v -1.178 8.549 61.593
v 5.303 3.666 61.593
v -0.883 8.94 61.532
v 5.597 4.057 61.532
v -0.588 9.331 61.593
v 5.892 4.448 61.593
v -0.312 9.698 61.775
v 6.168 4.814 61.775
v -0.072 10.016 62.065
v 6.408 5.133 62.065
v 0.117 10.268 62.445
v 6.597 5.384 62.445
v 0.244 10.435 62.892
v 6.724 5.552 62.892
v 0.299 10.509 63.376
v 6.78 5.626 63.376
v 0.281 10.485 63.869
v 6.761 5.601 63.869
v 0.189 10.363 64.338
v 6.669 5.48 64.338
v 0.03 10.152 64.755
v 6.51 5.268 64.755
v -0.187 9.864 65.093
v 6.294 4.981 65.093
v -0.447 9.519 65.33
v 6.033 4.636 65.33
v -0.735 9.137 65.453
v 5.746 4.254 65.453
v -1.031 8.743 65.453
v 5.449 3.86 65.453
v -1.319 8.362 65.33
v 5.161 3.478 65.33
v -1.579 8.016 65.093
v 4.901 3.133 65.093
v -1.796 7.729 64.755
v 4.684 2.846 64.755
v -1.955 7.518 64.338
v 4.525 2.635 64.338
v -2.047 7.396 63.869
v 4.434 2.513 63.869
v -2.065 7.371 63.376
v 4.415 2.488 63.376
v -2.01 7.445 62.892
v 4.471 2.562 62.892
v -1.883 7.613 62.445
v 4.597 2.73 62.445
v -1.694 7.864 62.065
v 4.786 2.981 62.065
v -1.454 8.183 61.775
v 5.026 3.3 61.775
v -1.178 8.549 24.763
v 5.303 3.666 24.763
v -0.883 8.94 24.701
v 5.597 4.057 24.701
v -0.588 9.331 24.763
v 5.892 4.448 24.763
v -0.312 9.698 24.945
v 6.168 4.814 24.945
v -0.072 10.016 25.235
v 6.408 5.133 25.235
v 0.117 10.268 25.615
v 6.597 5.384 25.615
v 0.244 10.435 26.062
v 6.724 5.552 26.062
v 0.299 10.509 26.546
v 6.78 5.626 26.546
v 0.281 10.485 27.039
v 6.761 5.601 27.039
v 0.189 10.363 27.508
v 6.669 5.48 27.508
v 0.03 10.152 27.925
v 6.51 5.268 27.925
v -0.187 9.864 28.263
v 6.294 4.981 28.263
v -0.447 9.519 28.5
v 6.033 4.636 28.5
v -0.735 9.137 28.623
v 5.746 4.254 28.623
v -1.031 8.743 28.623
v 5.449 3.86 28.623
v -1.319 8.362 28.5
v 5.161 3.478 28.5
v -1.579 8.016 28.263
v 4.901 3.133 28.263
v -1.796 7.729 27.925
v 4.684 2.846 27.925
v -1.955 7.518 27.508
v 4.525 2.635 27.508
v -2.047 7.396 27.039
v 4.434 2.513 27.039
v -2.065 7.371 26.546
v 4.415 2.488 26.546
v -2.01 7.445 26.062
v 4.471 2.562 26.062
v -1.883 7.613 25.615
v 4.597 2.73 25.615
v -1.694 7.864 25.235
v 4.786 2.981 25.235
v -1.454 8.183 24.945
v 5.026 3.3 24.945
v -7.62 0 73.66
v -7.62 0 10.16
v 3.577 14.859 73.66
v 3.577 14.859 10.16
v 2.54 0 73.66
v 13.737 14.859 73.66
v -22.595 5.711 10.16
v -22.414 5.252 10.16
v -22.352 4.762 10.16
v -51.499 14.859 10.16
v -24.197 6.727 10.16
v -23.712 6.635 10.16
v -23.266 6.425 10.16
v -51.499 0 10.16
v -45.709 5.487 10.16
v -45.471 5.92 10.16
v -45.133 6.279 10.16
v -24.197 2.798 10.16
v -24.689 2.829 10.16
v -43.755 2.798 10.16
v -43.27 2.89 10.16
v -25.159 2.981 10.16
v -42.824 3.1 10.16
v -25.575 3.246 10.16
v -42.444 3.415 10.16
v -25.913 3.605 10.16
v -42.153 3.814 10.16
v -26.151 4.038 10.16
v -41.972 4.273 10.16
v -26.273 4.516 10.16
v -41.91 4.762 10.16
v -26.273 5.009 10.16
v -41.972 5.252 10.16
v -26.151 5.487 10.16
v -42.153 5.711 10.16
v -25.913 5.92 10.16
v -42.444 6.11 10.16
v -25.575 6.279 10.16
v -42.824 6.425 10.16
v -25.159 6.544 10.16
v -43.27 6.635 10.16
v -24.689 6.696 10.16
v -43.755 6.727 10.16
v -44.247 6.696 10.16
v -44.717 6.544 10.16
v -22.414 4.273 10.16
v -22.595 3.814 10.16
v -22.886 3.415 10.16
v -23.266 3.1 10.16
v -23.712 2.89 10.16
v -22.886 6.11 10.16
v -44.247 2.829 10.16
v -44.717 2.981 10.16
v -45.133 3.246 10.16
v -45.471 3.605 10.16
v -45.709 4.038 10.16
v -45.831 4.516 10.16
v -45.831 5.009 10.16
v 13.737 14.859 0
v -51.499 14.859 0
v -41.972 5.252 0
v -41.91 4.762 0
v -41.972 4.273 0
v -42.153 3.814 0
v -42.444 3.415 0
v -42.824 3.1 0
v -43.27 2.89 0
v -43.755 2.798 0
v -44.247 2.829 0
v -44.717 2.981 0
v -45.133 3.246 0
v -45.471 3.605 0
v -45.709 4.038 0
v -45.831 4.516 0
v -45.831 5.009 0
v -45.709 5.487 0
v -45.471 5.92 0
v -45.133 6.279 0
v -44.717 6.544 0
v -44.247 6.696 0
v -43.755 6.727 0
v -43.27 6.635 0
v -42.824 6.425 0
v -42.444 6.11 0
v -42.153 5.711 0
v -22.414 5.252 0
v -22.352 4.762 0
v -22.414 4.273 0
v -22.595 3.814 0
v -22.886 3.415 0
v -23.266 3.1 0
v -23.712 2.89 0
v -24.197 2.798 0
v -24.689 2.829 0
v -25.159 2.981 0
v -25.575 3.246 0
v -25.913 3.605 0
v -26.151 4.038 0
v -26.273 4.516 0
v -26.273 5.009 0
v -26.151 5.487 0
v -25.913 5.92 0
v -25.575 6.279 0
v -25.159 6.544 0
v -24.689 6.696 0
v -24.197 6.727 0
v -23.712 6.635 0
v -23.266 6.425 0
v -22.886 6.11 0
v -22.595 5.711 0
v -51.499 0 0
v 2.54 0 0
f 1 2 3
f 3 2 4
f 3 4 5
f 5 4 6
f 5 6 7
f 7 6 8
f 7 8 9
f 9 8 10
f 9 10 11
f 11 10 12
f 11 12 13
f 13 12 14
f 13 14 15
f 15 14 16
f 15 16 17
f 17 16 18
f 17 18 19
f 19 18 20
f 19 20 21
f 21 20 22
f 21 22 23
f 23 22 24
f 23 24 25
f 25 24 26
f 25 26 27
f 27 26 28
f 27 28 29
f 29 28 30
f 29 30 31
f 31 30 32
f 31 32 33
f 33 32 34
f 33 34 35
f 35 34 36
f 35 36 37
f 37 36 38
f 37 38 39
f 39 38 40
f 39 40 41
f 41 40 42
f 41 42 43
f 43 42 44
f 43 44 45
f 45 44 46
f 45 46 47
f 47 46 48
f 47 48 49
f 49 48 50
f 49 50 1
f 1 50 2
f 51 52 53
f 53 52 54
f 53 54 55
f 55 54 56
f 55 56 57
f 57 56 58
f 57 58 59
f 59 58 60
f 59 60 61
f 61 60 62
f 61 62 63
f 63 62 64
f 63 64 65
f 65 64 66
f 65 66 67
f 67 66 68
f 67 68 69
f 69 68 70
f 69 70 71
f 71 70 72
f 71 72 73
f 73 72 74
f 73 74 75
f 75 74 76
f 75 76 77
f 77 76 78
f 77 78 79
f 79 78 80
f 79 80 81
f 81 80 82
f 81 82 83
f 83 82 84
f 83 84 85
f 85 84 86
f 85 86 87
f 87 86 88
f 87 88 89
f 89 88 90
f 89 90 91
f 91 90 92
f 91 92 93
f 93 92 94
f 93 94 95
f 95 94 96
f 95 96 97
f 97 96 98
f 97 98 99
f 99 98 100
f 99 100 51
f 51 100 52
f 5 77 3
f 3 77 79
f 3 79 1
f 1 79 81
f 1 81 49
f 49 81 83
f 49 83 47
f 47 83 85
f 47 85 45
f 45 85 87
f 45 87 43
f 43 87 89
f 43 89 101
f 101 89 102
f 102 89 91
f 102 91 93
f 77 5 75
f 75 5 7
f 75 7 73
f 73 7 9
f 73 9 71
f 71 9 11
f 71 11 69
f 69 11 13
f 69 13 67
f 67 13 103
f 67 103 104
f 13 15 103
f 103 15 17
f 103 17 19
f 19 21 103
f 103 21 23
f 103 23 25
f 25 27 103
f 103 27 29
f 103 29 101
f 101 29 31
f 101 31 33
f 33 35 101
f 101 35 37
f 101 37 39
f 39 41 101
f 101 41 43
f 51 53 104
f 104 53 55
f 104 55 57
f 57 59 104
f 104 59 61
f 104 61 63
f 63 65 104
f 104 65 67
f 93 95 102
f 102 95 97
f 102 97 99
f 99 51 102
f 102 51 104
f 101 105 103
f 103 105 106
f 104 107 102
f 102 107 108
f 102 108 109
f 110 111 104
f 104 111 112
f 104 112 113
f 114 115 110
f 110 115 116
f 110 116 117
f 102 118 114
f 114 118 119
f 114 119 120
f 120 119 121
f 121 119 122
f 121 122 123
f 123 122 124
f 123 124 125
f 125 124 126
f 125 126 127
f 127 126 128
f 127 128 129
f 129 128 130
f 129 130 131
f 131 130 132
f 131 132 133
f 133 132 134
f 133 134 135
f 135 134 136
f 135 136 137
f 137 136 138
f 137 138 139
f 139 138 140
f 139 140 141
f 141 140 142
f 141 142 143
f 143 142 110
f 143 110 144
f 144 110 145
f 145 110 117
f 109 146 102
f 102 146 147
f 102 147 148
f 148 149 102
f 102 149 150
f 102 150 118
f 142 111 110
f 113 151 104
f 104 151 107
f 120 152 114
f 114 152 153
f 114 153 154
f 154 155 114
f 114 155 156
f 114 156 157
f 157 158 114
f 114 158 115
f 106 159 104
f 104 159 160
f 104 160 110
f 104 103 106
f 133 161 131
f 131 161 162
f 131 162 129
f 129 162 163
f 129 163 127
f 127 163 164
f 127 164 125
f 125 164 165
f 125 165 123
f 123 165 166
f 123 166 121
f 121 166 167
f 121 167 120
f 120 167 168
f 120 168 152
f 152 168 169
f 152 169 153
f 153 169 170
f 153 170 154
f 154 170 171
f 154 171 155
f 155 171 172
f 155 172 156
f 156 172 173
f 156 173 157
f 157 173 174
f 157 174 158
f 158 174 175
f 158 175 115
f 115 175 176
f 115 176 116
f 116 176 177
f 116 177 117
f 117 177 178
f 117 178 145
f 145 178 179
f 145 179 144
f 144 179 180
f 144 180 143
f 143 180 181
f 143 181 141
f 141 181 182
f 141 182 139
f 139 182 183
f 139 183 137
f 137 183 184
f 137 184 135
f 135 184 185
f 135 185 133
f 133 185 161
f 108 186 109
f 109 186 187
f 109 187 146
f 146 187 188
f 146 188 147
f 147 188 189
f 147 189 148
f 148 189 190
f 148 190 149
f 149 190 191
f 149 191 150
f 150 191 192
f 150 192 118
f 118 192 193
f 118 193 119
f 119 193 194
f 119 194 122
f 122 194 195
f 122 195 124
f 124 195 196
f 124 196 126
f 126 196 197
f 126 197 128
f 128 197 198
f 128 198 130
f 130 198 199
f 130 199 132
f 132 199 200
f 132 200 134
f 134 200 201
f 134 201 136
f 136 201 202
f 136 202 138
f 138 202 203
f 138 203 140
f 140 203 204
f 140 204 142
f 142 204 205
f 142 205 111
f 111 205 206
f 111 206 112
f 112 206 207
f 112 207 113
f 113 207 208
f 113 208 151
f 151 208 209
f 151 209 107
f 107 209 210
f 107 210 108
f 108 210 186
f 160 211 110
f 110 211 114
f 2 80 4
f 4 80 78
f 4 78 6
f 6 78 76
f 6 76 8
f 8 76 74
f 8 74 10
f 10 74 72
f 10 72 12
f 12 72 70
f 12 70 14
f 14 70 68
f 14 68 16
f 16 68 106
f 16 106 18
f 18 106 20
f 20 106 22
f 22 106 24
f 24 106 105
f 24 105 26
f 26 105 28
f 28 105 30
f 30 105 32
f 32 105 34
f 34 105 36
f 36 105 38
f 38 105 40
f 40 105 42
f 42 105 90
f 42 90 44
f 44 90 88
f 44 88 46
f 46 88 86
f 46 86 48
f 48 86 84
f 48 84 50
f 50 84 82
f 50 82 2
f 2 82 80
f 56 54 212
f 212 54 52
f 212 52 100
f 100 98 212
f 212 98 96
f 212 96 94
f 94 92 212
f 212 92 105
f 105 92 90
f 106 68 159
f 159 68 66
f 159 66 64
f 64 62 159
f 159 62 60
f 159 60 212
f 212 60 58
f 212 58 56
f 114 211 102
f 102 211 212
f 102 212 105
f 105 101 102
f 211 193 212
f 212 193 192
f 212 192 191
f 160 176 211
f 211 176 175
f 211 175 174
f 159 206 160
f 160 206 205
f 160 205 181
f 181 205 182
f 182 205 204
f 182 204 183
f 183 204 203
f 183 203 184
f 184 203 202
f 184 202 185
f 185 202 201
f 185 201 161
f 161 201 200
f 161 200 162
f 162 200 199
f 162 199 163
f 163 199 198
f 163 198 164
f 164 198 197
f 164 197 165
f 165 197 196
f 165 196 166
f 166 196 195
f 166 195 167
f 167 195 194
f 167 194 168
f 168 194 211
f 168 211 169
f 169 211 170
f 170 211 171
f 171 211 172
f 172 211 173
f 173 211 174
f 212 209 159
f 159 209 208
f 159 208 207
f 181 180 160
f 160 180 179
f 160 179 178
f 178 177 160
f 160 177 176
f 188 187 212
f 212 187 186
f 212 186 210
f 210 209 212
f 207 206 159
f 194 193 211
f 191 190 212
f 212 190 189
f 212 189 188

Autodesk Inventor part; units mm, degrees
ref_plane "YZ Plane" through (0, 0, 0) normal (1, 0, 0) x (0, 1, 0)
ref_plane "XZ Plane" through (0, 0, 0) normal (0, 1, 0) x (-1, 0, 0)
ref_plane "Work Plane1" through (0, 0, 0) normal (0, 0, 1) x (1, 0, 0)
sketch "Sketch1" plane through (0, 0, 0) normal (0, 0, 1) x (1, 0, 0)
  line L0 (0, 14.859) -> (-322.453, 14.859) construction
  line L1 (-0.635, 0) -> (-321.818, 0) construction
  line L2 (0, 14.859) -> (0, 0.635) construction
  line L3 (2.54, 14.859) -> (2.54, 0) construction
  line L4 (2.54, 14.859) -> (17.399, 14.859) construction
  line L5 (2.54, 0) -> (-51.4985, 0)
  line L6 (13.7371, 14.859) -> (-30.6705, 14.859) construction
  circle A0 centre (-4.7625, 4.7625) radius 1.778 construction
  line L7 (-7.62, 0) -> (-7.62, 14.859) construction
  circle A1 centre (-24.3205, 4.7625) radius 1.778 construction
  circle A2 centre (-43.8785, 4.7625) radius 1.778 construction
  circle A3 centre (-24.3205, 4.7625) radius 1.9685
  circle A4 centre (-43.8785, 4.7625) radius 1.9685
  line L8 (-51.4985, 0) -> (-51.4985, 14.859)
  circle A5 centre (-24.3205, 4.7625) radius 4.8768 construction
  circle A6 centre (-43.8785, 4.7625) radius 4.8768 construction
  line L9 (13.7371, 14.859) -> (-51.4985, 14.859)
  line L10 (2.54, 0) -> (13.7371, 14.859)
  line L11 (2.54, 0) -> (21.1455, 0) construction
  point P0 (0, 0)
  dimension "d1" = 2.54
  dimension "d7" = 10.16
  dimension "d9" = 3.937
  dimension "d10" = 3.937
  dimension "d11" = 7.62
  dimension "d12" = 9.7536
  dimension "d13" = 9.7536
  dimension "d46" = 53
extrude "Extrusion1" add sketch "Sketch1" along normal blind 10.16
sketch "Sketch2" plane through (0, 0, 10.16) normal (0, 0, 1) x (1, 0, 0)
  circle A0 centre (-24.3205, 4.7625) radius 1.9685 construction
  circle A1 centre (-43.8785, 4.7625) radius 1.9685 construction
  line L0 (13.7371, 14.859) -> (-51.4985, 14.859) projected
  line L1 (2.54, 0) -> (-7.62, 0)
  line L2 (3.5771, 14.859) -> (13.7371, 14.859)
  line L3 (2.54, 0) -> (13.7371, 14.859)
  line L4 (2.54, 0) -> (24.4372, 0) construction
  line L5 (-7.62, 0) -> (3.5771, 14.859)
  line L6 (-7.62, 0) -> (10.9855, 0) construction
  point P0 (0, 0)
  point P1 (2.54, 14.859)
  dimension "d35" = 53
  dimension "d45" = 53
extrude "Extrusion2" add sketch "Sketch2" along normal blind 63.5 and the other way blind 10.16
sketch "Sketch4" plane through (0, 0, 10.16) normal (0, 0, 1) x (1, 0, 0)
  circle A0 centre (-24.3205, 4.7625) radius 1.9685 construction
  circle A1 centre (-24.3205, 4.7625) radius 4.8768 construction
  point P0 (0, 0)
  dimension "d25" = 9.7536
sketch "Sketch7" plane through (13.7371, 14.859, 73.66) normal (0.7986, -0.6018, 0) x (0, 0, -1)
  line L0 (0, -18.6055) -> (0, 0) construction
  line L1 (0, -13.5255) -> (73.66, -13.5255) construction
  line L2 (73.66, -39.2597) -> (73.66, 0) construction
  line L3 (73.66, -18.6055) -> (0, -18.6055) construction
  circle A0 centre (10.16, -13.5255) radius 1.9685
  line L4 (73.66, -18.6055) -> (73.66, -51.1267) projected
  circle A1 centre (46.99, -13.5255) radius 1.9685
  point P0 (73.66, -20.1341)
  dimension "d38" = 5.08
  dimension "d39" = 3.937
  dimension "d40" = 63.5
  dimension "d41" = 3.937
  dimension "d42" = 26.67
extrude "Extrusion5" cut sketch "Sketch7" against normal through all
properties part number "Delivery bin right angle connector"
